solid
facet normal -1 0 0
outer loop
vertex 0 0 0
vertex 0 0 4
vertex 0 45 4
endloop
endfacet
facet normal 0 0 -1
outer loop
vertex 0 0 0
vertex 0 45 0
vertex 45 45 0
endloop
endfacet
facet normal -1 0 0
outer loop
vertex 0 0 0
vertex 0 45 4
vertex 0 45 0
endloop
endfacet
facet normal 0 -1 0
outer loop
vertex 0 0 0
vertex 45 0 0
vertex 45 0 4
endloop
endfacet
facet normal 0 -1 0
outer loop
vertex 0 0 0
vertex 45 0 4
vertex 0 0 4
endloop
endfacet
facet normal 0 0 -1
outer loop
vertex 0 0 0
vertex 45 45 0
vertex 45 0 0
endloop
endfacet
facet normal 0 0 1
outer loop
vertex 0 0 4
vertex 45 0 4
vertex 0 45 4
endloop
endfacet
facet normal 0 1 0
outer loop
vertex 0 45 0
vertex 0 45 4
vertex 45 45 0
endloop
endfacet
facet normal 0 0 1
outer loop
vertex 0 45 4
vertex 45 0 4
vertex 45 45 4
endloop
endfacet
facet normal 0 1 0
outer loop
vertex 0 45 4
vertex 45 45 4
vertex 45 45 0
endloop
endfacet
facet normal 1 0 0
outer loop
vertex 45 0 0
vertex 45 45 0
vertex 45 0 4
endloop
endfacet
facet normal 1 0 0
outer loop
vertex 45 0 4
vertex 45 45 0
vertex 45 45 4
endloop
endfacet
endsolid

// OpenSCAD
/* Warning, this is a very basic generator with a lot of approximation 
input data : [BBGA, 7KC, 45x45x4.0mm, 1932, , C, C04-25091C]
generated by com.zoubworld.electronics.cad.model3d.Basic
Date : Sun Feb 15 10:50:49 CET 2026
*/

//body
color("black")
translate([0,0,0])
cube([45.0,45.0,4.0], center=false);
